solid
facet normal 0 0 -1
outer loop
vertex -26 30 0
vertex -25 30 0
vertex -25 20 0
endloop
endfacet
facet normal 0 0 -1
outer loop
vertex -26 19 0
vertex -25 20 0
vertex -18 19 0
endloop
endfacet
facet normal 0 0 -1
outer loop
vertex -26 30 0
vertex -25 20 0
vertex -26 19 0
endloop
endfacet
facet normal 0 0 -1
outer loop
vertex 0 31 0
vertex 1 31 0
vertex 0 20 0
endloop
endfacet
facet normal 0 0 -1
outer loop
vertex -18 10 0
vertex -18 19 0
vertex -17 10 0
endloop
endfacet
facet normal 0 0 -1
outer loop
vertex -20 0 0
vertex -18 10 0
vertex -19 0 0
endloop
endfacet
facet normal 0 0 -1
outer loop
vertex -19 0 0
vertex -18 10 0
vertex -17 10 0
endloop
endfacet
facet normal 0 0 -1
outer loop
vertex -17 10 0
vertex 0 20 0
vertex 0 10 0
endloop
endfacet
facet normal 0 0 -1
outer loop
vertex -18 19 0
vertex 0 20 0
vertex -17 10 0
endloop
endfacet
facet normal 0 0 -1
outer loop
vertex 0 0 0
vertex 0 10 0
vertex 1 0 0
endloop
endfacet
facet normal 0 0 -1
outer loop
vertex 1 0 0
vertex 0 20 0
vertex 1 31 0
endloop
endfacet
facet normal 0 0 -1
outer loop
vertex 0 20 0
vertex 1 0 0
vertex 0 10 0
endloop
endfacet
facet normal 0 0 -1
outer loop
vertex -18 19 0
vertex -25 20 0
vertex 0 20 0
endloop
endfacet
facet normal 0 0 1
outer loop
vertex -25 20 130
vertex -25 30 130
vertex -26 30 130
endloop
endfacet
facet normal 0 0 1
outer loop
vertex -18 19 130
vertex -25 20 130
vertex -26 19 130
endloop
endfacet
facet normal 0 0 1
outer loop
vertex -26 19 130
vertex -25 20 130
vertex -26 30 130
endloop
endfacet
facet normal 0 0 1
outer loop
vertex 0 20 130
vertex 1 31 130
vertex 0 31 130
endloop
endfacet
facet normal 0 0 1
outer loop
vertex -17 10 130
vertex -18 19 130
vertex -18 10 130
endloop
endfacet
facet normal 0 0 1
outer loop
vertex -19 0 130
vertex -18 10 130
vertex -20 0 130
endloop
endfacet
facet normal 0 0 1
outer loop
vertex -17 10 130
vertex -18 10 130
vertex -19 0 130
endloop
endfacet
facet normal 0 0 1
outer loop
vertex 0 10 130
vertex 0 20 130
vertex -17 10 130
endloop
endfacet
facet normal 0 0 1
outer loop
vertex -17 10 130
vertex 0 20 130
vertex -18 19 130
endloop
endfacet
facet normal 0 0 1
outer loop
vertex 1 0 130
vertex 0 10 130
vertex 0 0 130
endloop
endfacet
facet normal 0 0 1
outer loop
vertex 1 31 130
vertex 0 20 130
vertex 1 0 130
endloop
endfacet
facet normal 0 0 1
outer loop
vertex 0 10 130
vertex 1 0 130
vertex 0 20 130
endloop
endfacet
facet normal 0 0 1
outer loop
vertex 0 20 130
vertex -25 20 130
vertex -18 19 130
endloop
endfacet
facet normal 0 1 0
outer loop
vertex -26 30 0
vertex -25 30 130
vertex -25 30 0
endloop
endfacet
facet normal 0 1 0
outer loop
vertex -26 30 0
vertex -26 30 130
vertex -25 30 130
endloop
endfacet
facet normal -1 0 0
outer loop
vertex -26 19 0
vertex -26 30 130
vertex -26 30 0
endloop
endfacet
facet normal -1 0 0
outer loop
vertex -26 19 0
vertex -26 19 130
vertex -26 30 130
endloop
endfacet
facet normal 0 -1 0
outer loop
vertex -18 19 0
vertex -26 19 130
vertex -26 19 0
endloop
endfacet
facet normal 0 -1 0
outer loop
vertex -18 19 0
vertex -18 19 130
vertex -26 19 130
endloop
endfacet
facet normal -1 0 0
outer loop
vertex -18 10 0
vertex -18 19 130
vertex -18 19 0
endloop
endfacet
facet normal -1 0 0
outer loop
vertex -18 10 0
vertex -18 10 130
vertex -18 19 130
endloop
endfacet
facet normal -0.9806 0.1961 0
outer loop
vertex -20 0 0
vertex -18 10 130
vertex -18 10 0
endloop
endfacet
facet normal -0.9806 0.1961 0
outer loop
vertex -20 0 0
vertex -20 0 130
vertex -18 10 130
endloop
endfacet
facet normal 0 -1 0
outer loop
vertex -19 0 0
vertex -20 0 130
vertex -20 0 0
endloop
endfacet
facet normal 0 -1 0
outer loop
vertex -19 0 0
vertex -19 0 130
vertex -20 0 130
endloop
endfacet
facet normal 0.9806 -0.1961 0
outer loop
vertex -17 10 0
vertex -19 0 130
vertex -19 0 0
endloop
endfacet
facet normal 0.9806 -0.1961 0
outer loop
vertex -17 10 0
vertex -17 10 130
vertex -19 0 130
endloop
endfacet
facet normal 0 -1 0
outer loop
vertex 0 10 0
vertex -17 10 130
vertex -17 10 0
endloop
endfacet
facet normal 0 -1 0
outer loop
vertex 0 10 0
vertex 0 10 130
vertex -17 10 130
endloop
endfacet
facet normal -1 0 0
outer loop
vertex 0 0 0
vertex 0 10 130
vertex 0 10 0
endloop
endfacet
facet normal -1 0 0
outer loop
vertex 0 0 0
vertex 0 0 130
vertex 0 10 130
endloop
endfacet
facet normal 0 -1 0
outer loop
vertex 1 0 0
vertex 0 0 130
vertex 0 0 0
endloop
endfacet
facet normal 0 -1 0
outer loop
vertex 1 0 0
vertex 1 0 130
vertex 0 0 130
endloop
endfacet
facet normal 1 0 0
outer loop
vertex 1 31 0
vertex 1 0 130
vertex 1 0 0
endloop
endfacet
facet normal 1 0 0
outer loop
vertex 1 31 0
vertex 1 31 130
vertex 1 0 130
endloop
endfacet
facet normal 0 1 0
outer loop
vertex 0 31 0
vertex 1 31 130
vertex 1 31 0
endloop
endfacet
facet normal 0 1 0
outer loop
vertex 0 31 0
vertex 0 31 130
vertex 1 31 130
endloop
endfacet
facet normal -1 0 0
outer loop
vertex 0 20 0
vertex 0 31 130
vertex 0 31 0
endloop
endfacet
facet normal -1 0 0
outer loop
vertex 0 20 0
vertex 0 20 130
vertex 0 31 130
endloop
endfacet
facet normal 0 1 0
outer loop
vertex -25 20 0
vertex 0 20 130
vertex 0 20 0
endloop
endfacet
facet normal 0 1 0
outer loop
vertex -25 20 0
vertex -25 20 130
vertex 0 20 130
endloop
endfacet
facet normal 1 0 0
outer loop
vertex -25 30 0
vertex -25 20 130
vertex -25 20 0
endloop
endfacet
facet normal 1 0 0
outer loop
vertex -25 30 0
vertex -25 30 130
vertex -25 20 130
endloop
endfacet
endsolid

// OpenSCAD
/*
The MIT License (MIT)

Copyright (c) 2020 Shinichi Ohki.

Permission is hereby granted, free of charge, to any person obtaining a copy
of this software and associated documentation files (the "Software"), to deal
in the Software without restriction, including without limitation the rights
to use, copy, modify, merge, publish, distribute, sublicense, and/or sell
copies of the Software, and to permit persons to whom the Software is
furnished to do so, subject to the following conditions:

The above copyright notice and this permission notice shall be included in
all copies or substantial portions of the Software.

THE SOFTWARE IS PROVIDED "AS IS", WITHOUT WARRANTY OF ANY KIND, EXPRESS OR
IMPLIED, INCLUDING BUT NOT LIMITED TO THE WARRANTIES OF MERCHANTABILITY,
FITNESS FOR A PARTICULAR PURPOSE AND NONINFRINGEMENT. IN NO EVENT SHALL THE
AUTHORS OR COPYRIGHT HOLDERS BE LIABLE FOR ANY CLAIM, DAMAGES OR OTHER
LIABILITY, WHETHER IN AN ACTION OF CONTRACT, TORT OR OTHERWISE, ARISING FROM,
OUT OF OR IN CONNECTION WITH THE SOFTWARE OR THE USE OR OTHER DEALINGS IN
THE SOFTWARE.
*/


linear_extrude(height = 130) {
  translate([0,0,0]) {
    square([1,31],center = false);
  }
  
  translate([-17,10,0]) {
    #square([17,9],center = false);
  }
  
  translate([-25,19,0]) {
    square([25,1],center = false);
  }
  
  translate([-26,19,0]) {
    square([1,11],center = false);
  }
  
  translate([-18,10,0]) {
    square([1,10],center = false);
  }
  
  polygon(points=[[-17,10],[-19,0],[-20,0],[-18,10]]);
}
